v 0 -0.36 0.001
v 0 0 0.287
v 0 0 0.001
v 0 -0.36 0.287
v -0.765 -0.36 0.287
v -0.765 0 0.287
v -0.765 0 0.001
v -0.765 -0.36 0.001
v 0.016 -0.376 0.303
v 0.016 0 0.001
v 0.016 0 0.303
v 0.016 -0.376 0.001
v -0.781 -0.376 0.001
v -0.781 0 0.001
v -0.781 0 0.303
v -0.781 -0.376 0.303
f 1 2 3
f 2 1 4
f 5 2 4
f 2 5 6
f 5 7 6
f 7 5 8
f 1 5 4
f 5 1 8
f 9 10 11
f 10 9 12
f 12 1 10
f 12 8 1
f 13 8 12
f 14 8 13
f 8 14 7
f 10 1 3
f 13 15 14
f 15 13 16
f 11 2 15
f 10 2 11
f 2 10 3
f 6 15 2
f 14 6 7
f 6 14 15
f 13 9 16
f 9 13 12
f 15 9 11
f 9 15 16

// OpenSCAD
translate([-(0.765+0.016),-(0.36+0.016),-(1.235-2*0.287-0.016)]){  
    difference(){
        cube([0.765+0.016*2 ,0.36+0.016, 1.235-0.287], center=false);
        
        union(){
            translate([0.016,0.016,1.235-2*0.287-0.016]){
                cube([0.765,0.5, 0.287], center=false);
            };
                cube([0.765+0.016*2 ,0.36+0.016, 1.25-2*0.287-2*0.015], center=false);
        };
    };
};
